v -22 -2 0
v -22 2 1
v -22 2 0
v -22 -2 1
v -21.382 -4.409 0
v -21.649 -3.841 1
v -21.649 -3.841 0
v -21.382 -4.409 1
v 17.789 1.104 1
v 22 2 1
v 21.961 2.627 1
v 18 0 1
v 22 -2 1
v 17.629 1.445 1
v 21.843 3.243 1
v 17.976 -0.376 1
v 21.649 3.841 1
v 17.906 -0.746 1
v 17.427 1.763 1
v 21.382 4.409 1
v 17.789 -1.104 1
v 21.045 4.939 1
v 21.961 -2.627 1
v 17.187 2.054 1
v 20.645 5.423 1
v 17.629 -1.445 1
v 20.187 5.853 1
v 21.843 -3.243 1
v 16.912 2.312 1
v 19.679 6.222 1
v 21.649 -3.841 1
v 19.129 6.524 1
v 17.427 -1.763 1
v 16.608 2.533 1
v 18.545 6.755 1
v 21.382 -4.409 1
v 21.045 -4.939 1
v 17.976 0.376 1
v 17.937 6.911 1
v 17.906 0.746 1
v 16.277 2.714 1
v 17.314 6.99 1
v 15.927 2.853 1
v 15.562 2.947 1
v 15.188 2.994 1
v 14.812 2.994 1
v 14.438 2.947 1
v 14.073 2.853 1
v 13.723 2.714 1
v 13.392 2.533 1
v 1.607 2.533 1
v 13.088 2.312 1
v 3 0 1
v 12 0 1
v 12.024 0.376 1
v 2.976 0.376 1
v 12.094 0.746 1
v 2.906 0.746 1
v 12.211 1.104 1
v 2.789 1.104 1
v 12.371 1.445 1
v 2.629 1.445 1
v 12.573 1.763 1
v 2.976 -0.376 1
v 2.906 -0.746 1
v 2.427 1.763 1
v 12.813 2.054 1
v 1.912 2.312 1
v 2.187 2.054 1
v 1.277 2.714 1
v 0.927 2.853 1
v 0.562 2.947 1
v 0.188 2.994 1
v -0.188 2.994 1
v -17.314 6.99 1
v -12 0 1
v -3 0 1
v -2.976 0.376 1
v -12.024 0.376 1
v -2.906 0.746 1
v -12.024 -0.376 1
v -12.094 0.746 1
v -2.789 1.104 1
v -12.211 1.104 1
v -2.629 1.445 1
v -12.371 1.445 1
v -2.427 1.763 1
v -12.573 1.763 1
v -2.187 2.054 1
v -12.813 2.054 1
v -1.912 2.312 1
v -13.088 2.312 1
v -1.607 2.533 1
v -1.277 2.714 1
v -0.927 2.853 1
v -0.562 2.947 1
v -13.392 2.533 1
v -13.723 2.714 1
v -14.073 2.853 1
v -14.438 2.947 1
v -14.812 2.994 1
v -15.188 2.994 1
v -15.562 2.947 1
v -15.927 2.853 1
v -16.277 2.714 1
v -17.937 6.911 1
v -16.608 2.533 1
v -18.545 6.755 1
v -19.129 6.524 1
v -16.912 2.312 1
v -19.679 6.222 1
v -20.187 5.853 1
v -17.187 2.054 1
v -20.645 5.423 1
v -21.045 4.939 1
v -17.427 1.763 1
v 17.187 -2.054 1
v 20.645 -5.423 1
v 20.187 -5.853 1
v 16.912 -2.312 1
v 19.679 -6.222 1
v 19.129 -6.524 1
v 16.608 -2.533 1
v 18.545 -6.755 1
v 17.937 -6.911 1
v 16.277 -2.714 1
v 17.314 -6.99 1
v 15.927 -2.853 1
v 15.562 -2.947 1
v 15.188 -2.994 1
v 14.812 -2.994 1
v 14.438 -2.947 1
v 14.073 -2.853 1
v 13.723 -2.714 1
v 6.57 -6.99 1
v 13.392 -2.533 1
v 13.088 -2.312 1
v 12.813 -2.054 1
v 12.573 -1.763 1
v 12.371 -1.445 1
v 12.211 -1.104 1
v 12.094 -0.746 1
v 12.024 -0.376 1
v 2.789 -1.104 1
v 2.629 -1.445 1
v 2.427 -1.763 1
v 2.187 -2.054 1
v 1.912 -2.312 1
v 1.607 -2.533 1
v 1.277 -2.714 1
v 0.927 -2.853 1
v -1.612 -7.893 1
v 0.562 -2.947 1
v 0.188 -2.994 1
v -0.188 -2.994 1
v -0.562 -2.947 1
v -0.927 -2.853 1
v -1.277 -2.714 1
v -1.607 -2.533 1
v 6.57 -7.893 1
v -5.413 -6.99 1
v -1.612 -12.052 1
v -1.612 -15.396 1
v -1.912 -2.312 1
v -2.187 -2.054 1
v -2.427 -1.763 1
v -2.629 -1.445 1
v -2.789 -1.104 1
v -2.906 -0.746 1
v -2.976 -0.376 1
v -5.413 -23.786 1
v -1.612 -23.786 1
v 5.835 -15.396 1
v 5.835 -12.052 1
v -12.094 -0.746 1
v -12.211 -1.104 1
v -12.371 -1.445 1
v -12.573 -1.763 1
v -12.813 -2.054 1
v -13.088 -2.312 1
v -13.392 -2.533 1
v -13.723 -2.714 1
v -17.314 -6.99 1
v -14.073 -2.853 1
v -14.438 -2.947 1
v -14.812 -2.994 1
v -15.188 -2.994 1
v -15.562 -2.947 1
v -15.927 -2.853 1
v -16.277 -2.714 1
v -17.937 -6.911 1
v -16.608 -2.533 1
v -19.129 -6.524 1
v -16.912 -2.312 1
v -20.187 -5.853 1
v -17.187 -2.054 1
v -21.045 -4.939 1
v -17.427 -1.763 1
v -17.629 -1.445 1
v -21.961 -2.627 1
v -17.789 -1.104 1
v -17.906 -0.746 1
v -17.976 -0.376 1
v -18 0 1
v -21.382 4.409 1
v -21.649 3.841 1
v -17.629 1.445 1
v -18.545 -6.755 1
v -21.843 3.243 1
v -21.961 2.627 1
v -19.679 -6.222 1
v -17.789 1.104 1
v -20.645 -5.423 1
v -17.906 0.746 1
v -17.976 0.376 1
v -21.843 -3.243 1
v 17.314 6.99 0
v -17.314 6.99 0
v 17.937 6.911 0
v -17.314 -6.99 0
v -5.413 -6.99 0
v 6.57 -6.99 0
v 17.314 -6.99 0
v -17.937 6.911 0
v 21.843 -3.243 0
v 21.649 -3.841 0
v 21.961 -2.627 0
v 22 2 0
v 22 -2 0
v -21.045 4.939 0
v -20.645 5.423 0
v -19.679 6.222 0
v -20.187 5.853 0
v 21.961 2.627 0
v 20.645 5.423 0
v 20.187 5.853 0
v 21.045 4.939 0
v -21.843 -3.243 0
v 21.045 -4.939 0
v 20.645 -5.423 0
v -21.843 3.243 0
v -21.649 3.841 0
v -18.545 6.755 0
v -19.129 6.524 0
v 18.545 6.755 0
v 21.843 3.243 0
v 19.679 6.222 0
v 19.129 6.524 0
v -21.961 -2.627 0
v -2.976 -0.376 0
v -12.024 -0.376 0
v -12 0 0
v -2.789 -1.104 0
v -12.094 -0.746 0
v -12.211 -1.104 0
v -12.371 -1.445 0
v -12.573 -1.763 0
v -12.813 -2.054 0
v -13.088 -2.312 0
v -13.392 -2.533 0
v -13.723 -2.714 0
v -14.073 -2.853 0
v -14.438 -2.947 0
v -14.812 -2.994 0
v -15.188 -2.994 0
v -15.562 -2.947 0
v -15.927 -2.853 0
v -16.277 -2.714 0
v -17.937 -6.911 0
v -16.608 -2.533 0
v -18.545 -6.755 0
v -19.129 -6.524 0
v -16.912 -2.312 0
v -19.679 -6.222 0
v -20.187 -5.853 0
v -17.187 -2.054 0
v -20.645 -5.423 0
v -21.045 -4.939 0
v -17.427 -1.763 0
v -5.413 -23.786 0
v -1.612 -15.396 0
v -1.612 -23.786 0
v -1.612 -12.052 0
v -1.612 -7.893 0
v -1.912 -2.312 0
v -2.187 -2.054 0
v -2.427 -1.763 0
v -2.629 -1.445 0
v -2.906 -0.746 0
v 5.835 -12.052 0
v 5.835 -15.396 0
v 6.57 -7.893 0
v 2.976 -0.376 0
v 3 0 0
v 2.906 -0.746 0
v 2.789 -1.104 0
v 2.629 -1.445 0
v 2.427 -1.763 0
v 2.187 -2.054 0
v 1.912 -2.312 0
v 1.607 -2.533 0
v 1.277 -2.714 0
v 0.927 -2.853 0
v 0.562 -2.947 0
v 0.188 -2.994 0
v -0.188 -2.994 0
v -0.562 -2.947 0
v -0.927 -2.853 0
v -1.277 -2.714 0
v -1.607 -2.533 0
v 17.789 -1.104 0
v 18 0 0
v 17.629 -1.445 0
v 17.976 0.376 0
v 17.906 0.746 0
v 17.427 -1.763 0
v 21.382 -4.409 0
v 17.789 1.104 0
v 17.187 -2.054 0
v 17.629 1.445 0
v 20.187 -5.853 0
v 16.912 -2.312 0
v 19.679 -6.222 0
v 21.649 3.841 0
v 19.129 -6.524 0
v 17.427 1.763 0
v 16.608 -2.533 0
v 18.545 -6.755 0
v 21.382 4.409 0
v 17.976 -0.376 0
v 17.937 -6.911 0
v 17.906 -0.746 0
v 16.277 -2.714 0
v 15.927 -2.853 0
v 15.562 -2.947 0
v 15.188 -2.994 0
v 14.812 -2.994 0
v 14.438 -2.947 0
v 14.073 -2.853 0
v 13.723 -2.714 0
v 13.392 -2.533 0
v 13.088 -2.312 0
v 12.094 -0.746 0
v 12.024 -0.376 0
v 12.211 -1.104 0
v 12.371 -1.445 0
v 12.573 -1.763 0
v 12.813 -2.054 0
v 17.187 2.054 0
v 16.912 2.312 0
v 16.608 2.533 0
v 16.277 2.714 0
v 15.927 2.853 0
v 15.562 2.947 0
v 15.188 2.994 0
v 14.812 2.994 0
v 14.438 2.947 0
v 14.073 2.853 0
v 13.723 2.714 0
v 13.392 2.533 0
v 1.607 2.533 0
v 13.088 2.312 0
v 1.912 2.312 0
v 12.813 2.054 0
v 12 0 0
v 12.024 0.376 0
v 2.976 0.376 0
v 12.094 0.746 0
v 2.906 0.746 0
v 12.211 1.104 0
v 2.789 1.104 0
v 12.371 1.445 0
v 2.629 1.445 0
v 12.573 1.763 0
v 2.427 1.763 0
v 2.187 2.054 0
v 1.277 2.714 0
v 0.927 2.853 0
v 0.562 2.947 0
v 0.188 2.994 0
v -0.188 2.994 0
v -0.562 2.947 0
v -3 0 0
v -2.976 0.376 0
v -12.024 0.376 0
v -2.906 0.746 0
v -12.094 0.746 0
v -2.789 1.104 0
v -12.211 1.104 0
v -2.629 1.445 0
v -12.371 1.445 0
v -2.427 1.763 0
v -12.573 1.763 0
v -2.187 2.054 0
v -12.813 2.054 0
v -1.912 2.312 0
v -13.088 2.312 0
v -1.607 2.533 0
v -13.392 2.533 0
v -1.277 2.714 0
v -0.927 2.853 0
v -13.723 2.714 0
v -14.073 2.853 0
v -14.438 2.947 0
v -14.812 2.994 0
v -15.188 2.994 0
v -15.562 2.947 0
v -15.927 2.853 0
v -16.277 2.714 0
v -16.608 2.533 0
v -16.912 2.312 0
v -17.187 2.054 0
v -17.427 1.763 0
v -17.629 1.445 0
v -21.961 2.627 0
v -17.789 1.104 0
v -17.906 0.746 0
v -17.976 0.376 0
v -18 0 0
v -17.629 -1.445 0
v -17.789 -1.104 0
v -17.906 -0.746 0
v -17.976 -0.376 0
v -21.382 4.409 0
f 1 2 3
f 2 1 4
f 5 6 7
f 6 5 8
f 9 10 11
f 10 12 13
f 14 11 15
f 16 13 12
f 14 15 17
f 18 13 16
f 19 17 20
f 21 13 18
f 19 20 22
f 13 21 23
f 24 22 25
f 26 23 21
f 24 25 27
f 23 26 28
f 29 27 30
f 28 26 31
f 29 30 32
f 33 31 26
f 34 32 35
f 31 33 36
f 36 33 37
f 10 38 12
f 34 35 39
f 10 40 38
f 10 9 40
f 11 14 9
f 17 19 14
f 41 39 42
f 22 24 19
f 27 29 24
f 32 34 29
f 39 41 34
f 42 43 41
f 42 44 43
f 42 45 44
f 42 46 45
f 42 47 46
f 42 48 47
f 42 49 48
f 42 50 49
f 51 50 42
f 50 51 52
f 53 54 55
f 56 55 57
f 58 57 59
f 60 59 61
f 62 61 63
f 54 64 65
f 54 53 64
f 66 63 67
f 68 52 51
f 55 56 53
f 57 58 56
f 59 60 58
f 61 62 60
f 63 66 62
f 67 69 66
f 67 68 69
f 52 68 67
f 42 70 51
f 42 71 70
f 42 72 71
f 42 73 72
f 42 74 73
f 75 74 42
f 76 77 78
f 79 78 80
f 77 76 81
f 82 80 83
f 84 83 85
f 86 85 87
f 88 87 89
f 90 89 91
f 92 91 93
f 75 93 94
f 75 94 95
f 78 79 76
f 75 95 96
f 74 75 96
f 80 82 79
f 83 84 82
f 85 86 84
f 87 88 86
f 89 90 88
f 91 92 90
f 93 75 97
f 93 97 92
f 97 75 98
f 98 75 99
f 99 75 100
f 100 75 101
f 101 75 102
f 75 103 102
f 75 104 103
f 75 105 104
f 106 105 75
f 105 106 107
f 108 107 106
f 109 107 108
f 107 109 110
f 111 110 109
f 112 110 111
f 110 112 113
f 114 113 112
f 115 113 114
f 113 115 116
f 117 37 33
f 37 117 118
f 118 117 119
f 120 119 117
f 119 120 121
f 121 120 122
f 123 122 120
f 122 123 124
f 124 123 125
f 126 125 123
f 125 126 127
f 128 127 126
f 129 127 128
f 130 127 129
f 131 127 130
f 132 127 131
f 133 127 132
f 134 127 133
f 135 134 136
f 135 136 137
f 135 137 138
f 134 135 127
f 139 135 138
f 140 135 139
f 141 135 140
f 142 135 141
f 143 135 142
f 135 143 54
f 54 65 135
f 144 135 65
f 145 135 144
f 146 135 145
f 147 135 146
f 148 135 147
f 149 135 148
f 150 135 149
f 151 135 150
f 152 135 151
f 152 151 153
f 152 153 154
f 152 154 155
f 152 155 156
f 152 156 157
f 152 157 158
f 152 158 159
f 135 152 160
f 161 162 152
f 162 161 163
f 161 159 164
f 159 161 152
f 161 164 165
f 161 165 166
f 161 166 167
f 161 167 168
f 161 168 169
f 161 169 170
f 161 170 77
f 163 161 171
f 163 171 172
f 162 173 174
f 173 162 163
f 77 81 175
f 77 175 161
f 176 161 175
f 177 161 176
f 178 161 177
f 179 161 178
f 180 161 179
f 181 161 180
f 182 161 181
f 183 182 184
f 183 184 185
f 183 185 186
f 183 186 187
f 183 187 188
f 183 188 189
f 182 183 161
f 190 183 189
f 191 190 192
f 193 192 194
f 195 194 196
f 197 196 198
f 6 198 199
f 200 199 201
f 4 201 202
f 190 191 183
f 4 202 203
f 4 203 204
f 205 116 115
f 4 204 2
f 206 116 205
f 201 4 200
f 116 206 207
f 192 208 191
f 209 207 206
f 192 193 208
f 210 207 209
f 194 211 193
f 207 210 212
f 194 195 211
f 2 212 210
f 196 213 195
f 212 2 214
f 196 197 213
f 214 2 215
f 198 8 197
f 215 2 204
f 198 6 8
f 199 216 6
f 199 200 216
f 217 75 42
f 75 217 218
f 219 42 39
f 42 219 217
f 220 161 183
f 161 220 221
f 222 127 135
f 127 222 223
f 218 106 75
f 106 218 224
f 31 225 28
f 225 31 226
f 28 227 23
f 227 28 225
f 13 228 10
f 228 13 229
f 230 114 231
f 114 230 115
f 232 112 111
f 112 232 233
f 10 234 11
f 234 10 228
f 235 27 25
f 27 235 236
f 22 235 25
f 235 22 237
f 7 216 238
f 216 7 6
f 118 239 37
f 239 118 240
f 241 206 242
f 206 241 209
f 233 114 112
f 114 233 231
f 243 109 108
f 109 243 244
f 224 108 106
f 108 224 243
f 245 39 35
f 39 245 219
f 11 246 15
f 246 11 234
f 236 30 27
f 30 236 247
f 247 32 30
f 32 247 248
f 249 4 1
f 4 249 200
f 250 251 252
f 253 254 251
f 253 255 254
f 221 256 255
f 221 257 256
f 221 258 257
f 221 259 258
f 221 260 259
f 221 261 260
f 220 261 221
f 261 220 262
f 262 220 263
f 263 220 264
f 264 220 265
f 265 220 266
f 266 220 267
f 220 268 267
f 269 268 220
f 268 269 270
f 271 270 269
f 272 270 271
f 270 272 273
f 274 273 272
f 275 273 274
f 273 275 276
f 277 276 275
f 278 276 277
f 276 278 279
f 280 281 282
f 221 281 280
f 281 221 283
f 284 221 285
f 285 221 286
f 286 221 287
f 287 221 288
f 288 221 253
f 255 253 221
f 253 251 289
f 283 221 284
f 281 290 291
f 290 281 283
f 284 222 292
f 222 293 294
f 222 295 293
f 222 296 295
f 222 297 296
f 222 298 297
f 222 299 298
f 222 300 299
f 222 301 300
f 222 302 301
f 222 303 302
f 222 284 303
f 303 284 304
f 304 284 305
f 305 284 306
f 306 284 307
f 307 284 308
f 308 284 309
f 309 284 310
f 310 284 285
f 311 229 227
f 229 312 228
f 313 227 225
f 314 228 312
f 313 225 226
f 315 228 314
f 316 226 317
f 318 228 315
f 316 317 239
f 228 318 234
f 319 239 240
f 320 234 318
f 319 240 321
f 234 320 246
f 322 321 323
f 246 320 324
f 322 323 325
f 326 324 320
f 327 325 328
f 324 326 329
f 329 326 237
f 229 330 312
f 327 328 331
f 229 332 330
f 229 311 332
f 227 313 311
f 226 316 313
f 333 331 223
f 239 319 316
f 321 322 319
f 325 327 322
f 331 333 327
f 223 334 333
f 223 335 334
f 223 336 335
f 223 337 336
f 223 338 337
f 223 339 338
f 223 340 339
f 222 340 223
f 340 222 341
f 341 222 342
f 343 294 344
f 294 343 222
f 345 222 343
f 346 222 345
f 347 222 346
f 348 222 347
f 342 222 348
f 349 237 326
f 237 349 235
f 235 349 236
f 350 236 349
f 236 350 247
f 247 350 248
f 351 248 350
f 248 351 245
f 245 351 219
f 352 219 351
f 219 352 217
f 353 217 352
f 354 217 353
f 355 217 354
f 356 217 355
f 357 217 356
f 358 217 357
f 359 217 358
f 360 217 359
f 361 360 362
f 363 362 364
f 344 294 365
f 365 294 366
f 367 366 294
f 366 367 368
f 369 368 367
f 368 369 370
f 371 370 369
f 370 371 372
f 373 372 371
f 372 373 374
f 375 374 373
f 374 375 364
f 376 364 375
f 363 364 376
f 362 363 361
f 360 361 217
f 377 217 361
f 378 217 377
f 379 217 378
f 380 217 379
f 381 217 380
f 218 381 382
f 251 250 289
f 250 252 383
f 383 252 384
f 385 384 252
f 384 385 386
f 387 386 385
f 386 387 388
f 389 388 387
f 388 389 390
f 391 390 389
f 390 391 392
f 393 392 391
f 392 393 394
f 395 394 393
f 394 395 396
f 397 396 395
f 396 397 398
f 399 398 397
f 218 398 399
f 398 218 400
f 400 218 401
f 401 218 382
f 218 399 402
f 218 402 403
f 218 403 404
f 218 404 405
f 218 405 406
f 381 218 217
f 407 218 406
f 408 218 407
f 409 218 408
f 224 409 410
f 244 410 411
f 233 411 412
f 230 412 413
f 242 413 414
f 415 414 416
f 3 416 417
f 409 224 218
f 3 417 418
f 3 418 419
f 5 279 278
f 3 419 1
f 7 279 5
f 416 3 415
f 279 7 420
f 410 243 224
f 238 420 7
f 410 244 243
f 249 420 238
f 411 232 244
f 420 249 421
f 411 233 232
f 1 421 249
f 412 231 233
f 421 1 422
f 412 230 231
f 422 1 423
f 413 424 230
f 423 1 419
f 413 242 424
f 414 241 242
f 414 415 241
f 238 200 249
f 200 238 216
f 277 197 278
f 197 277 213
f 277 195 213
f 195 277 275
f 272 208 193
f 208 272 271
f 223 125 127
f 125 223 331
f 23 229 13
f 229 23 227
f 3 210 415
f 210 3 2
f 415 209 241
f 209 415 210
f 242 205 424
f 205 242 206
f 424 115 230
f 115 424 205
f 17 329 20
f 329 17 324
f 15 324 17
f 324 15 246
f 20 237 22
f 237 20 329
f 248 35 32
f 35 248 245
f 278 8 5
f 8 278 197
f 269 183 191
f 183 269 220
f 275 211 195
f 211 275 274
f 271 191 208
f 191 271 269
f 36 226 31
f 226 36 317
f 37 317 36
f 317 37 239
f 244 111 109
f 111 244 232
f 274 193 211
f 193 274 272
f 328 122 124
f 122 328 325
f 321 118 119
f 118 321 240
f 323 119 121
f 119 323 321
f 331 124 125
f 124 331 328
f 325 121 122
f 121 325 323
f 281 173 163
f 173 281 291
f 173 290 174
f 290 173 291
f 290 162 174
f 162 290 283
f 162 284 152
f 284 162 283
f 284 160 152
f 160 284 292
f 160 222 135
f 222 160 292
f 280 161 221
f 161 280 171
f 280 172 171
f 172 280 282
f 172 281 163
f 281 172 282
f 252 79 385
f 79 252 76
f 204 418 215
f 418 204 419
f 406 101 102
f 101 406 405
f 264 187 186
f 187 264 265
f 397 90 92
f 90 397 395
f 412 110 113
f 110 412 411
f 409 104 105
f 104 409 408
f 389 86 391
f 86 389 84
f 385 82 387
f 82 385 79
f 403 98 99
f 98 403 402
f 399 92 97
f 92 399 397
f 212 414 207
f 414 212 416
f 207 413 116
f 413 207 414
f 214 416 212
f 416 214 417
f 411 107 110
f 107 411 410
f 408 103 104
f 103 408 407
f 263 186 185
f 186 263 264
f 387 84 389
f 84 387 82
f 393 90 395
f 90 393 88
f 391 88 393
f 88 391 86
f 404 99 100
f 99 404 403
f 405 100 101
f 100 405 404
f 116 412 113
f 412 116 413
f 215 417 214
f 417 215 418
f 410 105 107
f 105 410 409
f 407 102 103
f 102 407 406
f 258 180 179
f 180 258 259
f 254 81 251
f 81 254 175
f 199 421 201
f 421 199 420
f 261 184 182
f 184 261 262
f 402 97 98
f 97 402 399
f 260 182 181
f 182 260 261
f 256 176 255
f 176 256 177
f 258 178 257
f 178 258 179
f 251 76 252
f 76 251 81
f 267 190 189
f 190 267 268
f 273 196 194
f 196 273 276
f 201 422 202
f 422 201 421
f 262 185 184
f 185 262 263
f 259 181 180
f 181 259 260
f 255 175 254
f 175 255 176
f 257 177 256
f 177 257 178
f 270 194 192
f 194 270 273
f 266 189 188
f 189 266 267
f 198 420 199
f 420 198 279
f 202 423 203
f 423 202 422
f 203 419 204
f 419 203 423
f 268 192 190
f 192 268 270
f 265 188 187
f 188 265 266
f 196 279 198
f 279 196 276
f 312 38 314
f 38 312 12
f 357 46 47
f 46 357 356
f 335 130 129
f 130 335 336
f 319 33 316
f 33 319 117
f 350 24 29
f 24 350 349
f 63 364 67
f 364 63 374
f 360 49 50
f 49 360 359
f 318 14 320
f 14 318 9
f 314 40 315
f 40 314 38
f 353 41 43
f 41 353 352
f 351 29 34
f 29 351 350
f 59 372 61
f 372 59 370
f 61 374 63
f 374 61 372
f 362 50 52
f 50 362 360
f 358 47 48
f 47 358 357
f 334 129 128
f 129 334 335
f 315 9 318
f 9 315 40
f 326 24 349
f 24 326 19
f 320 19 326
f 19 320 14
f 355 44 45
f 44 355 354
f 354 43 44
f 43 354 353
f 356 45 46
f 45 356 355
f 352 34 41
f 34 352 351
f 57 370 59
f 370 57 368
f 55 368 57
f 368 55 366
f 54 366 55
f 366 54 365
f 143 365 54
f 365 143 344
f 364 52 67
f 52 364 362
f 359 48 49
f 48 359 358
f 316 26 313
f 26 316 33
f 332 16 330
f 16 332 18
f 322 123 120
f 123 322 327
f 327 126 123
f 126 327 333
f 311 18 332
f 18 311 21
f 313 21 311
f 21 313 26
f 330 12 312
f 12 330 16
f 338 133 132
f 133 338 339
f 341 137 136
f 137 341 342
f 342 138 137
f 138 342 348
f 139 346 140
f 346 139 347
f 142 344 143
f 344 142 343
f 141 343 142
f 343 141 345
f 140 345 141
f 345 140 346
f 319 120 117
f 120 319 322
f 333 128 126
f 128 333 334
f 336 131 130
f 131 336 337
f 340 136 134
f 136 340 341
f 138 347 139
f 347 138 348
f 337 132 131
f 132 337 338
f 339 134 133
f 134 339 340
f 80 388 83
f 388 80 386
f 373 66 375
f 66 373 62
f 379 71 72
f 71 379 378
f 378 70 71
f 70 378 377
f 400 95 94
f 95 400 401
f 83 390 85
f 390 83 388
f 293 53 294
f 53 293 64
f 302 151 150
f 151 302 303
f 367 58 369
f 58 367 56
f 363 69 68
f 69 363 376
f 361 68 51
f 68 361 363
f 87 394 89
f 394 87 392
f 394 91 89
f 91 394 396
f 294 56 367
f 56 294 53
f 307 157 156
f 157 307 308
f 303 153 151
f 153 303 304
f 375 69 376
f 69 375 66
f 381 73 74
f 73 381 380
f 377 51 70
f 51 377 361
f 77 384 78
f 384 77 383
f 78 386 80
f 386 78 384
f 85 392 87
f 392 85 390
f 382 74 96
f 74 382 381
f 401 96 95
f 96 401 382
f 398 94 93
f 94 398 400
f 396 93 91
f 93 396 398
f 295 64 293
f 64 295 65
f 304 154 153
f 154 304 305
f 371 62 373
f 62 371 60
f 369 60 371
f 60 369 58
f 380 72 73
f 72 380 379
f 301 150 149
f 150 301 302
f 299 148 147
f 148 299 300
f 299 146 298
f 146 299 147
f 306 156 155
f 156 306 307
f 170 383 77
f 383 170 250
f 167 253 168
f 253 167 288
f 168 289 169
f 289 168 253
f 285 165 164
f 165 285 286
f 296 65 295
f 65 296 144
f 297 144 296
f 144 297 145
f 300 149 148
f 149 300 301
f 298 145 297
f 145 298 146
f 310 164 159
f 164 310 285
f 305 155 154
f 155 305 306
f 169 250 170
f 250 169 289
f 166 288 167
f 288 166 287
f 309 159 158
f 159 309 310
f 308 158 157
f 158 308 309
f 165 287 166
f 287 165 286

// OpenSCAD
$fn = 50;


difference() {
	union() {
		translate(v = [0, 0, 0]) {
			rotate(a = [0, 0, 0]) {
				hull() {
					translate(v = [-17.0000000000, 2.0000000000, 0]) {
						rotate(a = [0, 0, 0]) {
							translate(v = [0, 0, 0]) {
								rotate(a = [0, 0, 0]) {
									cylinder(h = 1, r = 5);
								}
							}
						}
					}
					translate(v = [17.0000000000, 2.0000000000, 0]) {
						rotate(a = [0, 0, 0]) {
							translate(v = [0, 0, 0]) {
								rotate(a = [0, 0, 0]) {
									cylinder(h = 1, r = 5);
								}
							}
						}
					}
					translate(v = [-17.0000000000, -2.0000000000, 0]) {
						rotate(a = [0, 0, 0]) {
							translate(v = [0, 0, 0]) {
								rotate(a = [0, 0, 0]) {
									cylinder(h = 1, r = 5);
								}
							}
						}
					}
					translate(v = [17.0000000000, -2.0000000000, 0]) {
						rotate(a = [0, 0, 0]) {
							translate(v = [0, 0, 0]) {
								rotate(a = [0, 0, 0]) {
									cylinder(h = 1, r = 5);
								}
							}
						}
					}
				}
			}
		}
		translate(v = [0, -5, 0]) {
			rotate(a = [0, 0, 0]) {
				linear_extrude(height = 1) {
					text(font = "DejaVu Sans Mono:style=Bold", halign = "center", size = 19.0000000000, text = "F", valign = "top");
				}
			}
		}
	}
	union() {
		translate(v = [-15.0000000000, 0.0000000000, -125.0000000000]) {
			rotate(a = [0, 0, 0]) {
				cylinder(h = 250, r = 3.0000000000);
			}
		}
		translate(v = [15.0000000000, 0.0000000000, -125.0000000000]) {
			rotate(a = [0, 0, 0]) {
				cylinder(h = 250, r = 3.0000000000);
			}
		}
		translate(v = [15.0000000000, 0.0000000000, -125.0000000000]) {
			rotate(a = [0, 0, 0]) {
				cylinder(h = 250, r = 3.0000000000);
			}
		}
		translate(v = [0, 0, -125.0000000000]) {
			rotate(a = [0, 0, 0]) {
				cylinder(h = 250, r = 3.0000000000);
			}
		}
	}
}
